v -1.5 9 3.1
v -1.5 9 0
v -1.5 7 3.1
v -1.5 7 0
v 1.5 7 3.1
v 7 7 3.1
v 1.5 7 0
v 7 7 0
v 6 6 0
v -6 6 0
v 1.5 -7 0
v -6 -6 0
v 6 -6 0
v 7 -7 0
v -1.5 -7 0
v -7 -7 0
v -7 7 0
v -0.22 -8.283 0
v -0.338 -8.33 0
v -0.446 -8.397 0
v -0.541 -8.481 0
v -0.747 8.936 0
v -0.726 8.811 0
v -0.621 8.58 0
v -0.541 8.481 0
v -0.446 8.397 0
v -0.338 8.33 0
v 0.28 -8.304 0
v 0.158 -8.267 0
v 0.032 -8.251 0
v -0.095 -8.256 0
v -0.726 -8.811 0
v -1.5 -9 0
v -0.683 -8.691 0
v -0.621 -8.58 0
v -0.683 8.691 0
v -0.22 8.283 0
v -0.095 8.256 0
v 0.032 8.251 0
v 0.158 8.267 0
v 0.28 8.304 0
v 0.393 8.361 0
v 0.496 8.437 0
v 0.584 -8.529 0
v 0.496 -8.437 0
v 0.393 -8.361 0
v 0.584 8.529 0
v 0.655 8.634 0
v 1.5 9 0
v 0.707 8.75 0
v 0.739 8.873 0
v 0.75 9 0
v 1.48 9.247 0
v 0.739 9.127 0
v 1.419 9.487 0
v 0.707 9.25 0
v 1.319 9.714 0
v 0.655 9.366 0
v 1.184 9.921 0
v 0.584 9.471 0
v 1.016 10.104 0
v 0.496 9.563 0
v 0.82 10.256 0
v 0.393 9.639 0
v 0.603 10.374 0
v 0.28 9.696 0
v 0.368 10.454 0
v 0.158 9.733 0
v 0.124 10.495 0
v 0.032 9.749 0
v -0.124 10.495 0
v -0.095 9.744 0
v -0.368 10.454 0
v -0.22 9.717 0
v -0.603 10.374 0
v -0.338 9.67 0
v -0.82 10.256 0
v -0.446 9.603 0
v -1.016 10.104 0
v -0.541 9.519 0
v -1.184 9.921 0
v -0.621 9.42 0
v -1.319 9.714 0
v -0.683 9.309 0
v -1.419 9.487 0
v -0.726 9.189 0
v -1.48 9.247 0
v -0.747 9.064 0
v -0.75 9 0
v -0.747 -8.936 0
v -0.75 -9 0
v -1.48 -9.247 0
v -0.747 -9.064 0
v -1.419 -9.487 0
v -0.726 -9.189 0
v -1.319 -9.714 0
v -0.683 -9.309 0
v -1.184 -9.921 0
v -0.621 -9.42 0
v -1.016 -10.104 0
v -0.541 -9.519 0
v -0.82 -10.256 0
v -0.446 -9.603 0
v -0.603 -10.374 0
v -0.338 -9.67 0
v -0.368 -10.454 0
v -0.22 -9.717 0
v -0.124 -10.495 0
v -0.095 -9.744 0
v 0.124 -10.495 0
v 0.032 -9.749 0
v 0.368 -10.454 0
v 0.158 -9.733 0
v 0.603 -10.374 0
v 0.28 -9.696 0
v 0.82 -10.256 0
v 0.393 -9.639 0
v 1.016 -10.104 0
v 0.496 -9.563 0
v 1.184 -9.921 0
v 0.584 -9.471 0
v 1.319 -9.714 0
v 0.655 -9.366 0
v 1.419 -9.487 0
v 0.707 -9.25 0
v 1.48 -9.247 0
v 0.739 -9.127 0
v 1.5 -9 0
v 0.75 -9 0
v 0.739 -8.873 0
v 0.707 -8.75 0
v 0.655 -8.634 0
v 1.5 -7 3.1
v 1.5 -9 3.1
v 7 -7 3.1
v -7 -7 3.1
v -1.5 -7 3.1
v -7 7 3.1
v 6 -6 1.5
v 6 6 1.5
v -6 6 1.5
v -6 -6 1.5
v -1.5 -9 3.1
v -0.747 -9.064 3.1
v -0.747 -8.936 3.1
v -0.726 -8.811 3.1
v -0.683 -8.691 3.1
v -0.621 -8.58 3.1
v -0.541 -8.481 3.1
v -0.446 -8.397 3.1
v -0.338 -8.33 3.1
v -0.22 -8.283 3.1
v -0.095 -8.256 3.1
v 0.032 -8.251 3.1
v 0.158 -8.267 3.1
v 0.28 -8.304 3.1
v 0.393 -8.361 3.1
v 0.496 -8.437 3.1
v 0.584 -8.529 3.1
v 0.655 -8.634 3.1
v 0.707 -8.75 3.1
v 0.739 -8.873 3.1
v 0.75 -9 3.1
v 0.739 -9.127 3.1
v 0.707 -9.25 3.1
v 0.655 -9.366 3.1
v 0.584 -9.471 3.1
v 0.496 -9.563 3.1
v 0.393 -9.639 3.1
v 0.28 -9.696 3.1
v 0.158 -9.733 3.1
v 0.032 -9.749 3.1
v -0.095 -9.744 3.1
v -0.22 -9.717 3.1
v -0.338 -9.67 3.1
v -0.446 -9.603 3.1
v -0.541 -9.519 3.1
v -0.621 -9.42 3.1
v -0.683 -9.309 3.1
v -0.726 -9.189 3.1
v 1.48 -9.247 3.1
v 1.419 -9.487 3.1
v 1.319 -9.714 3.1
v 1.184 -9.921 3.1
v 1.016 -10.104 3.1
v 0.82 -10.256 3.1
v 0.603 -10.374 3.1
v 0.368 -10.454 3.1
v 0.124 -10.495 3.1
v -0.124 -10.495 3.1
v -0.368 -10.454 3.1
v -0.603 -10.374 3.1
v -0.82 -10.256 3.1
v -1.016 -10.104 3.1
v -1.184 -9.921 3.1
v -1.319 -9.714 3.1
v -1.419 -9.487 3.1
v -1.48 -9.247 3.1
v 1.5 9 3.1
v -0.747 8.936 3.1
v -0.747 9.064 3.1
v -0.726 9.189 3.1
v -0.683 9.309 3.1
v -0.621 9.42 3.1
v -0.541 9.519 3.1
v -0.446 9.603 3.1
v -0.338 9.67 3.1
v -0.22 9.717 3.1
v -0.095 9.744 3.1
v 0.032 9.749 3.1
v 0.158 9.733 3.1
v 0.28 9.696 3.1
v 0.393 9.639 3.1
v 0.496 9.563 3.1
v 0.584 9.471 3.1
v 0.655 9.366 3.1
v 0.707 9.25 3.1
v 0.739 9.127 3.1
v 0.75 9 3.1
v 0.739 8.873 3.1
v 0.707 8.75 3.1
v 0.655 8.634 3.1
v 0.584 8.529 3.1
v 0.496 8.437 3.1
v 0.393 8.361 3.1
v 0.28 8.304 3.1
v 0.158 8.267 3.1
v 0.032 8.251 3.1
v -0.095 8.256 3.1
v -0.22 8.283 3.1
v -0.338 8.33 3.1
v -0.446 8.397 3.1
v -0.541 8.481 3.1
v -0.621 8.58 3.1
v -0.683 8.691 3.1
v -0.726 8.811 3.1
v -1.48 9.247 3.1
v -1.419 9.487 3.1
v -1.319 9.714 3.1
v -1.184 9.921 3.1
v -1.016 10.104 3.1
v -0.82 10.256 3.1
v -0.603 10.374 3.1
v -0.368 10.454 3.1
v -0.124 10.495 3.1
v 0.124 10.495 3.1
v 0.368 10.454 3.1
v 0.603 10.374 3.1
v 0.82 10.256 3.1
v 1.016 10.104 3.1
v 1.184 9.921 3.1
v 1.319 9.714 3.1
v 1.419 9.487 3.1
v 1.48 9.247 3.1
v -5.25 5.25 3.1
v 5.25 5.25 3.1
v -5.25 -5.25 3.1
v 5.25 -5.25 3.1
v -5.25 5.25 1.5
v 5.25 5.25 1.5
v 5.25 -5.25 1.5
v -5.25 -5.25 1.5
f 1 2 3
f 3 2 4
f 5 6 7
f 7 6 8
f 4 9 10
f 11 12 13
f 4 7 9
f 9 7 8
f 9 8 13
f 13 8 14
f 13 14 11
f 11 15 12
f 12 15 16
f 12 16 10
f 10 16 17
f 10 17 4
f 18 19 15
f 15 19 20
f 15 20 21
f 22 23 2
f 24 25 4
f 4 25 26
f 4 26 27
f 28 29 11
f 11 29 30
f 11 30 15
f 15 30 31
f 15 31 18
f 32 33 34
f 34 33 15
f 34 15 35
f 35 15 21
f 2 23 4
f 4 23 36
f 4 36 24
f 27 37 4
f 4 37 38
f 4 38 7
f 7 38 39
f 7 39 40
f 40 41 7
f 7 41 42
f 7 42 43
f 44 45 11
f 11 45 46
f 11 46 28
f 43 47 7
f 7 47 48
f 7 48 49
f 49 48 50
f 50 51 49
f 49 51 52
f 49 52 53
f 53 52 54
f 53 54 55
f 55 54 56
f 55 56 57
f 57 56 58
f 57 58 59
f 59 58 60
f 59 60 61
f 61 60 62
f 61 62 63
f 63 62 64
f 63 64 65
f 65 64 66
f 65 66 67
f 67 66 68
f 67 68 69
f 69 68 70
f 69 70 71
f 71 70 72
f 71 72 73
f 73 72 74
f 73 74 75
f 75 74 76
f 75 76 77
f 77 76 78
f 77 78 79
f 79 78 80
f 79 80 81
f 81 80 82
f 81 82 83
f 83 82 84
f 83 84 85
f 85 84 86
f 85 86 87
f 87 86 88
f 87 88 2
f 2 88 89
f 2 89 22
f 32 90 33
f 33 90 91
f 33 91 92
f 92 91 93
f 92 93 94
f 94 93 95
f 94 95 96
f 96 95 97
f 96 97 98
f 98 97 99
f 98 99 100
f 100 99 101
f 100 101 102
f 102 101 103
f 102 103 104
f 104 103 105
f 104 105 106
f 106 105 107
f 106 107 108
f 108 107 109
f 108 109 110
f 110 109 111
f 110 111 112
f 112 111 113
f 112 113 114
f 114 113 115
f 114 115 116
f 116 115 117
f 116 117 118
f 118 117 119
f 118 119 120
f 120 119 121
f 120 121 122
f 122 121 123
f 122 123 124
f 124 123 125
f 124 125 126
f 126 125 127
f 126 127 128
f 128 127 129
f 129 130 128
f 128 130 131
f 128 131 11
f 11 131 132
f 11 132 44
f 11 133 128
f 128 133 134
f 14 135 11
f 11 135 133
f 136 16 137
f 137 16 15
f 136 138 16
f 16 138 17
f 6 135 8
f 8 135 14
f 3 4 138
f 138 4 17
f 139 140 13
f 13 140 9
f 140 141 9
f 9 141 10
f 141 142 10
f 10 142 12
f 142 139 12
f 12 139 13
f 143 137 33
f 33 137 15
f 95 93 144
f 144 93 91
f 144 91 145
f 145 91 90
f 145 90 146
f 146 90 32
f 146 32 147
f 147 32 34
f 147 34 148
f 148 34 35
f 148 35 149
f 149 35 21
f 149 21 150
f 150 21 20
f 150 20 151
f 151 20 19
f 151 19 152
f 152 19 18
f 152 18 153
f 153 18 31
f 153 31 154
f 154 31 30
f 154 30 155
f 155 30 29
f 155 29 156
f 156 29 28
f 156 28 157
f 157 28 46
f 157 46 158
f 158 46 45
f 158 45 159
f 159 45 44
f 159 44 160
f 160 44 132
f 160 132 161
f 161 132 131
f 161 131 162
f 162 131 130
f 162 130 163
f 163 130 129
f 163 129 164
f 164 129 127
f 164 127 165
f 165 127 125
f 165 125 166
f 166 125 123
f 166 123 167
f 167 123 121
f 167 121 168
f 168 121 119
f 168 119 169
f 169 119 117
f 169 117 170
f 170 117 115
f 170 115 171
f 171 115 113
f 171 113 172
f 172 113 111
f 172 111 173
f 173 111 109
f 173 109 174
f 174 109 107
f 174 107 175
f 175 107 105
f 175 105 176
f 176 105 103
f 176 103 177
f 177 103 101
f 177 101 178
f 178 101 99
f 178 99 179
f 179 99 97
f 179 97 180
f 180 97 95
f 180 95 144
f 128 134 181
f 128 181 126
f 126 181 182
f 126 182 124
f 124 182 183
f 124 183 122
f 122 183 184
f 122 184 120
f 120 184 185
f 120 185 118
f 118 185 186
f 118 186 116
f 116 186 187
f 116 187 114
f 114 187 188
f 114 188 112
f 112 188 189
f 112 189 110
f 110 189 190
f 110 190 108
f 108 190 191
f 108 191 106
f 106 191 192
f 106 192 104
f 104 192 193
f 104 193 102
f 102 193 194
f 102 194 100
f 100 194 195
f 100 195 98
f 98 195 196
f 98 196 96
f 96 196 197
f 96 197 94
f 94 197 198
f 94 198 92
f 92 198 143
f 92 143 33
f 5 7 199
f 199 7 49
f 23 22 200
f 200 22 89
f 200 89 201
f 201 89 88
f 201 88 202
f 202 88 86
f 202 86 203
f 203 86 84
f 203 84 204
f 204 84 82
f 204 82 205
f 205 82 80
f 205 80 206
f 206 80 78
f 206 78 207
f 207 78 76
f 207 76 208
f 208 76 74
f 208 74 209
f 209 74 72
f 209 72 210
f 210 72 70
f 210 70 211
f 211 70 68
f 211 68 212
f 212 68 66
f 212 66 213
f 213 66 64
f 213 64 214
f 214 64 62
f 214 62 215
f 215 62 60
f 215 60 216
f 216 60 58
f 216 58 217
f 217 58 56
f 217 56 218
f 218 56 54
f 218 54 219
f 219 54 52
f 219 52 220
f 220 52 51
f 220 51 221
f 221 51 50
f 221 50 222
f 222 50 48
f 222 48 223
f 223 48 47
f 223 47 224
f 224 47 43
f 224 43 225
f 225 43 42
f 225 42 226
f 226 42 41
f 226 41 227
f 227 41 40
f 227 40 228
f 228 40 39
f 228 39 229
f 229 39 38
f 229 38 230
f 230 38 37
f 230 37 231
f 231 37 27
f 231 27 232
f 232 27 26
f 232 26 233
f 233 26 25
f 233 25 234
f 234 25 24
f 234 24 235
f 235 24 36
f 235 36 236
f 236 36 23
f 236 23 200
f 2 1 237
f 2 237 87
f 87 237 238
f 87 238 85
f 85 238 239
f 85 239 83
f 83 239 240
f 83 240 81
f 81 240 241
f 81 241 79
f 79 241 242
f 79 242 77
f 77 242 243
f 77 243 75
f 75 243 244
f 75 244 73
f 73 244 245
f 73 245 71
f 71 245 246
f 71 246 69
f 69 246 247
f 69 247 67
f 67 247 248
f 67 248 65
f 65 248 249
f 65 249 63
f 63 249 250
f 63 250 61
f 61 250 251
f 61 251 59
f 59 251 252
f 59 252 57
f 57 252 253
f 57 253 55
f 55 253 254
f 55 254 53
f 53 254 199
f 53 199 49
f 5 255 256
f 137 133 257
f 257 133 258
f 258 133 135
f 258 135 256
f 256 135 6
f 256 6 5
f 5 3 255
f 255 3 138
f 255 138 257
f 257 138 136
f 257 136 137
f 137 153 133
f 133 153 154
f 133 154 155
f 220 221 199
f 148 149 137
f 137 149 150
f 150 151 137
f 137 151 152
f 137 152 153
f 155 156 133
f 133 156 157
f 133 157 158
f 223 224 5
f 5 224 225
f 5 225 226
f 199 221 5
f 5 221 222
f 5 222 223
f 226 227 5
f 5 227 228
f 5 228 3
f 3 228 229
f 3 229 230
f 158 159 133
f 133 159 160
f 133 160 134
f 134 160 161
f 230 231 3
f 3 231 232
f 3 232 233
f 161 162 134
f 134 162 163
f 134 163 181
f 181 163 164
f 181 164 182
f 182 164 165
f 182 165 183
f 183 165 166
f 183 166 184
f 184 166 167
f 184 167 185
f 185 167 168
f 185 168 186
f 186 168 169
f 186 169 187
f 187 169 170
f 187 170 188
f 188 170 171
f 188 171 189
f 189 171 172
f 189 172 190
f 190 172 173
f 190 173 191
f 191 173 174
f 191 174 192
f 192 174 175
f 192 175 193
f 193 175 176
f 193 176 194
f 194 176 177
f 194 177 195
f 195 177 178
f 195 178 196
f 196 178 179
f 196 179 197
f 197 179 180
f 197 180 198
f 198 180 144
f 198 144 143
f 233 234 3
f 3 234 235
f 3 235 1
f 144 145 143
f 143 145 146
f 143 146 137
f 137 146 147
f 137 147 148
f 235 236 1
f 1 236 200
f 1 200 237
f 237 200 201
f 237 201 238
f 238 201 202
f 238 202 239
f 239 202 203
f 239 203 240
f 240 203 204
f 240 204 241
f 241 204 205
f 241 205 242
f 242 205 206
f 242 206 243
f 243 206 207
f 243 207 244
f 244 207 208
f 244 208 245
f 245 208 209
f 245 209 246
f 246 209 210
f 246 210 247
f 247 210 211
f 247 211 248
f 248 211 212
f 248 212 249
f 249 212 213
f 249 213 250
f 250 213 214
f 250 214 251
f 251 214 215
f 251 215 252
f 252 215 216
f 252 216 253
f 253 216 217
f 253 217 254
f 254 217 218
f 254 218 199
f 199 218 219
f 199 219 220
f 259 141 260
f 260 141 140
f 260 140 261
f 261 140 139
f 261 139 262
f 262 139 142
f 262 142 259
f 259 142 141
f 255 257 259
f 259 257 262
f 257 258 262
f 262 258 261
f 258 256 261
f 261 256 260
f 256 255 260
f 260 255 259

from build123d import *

# Parameters (mm, degrees)
SKETCH_1_W          = 14
SKETCH_1_H          = 14
SKETCH_1_W_2        = 12
SKETCH_1_H_2        = 12
EXTRUDE_1_DEPTH     = 1.5
SKETCH_2_W          = 3
SKETCH_2_H          = 1.5
EXTRUDE_2_DEPTH     = 3.5
SKETCH_3_R          = 0.75
CUT_EXTRUDE_1_DEPTH = 3.5
CUT_EXTRUDE_2_DEPTH = 3.5
EXTRUDE_START       = 1.6
SKETCH_6_R          = 0.75
SKETCH_6_W          = 10.5
SKETCH_6_H          = 10.5
EXTRUDE_3_DEPTH     = 1.6


with BuildPart() as part:
    # 草图1 → 凸台-拉伸1 (new body)
    with BuildSketch(Plane.XY):
        Rectangle(SKETCH_1_W, SKETCH_1_H)
        Rectangle(SKETCH_1_W_2, SKETCH_1_H_2, mode=Mode.SUBTRACT)
    extrude(amount=EXTRUDE_1_DEPTH)

    # 草图2 → 凸台-拉伸2 (add)
    with BuildSketch(Plane.XZ.offset(7)):
        with Locations((0, 0.75)):
            Rectangle(SKETCH_2_W, SKETCH_2_H)
    extrude_2 = extrude(amount=EXTRUDE_2_DEPTH)

    # 草图3 → 切除-拉伸1 (cut)
    with BuildSketch(Plane.XY.offset(1.5)):
        with Locations((0, -9)):
            Circle(SKETCH_3_R)
    cut_extrude_1 = extrude(amount=-CUT_EXTRUDE_1_DEPTH, mode=Mode.SUBTRACT)

    # 草图3<3> → 切除-拉伸2 (cut)
    with BuildSketch(Plane.XY.offset(1.5)):
        with BuildLine():
            ThreePointArc((0, -10.5), (-1.060660172, -10.060660172), (-1.5, -9))
            Line((-1.5, -9), (-1.5, -10.5))
            Line((-1.5, -10.5), (0, -10.5))
        make_face()
        with BuildLine():
            Line((1.5, -10.5), (1.5, -9))
            ThreePointArc((1.5, -9), (1.060660172, -10.060660172), (0, -10.5))
            Line((0, -10.5), (1.5, -10.5))
        make_face()
    cut_extrude_2 = extrude(amount=-CUT_EXTRUDE_2_DEPTH, mode=Mode.SUBTRACT)

    # 镜向1: 凸台-拉伸2, 切除-拉伸1, 切除-拉伸2 across plane
    add(extrude_2.mirror(Plane.ZX))
    add(cut_extrude_1.mirror(Plane.ZX), mode=Mode.SUBTRACT)
    add(cut_extrude_2.mirror(Plane.ZX), mode=Mode.SUBTRACT)

    # 草图6 → 凸台-拉伸3 (add)
    with BuildSketch(Plane.XY.offset(1.5).offset(EXTRUDE_START)):
        with BuildLine():
            Line((-1.5, -9), (-1.5, -7))
            Line((-1.5, -7), (-7, -7))
            Line((-7, -7), (-7, 7))
            Line((-7, 7), (-1.5, 7))
            Line((-1.5, 7), (-1.5, 9))
            ThreePointArc((-1.5, 9), (0, 10.5), (1.5, 9))
            Line((1.5, 9), (1.5, 7))
            Line((1.5, 7), (7, 7))
            Line((7, 7), (7, -7))
            Line((7, -7), (1.5, -7))
            Line((1.5, -7), (1.5, -9))
            ThreePointArc((1.5, -9), (0, -10.5), (-1.5, -9))
        make_face()
        with Locations((0, 9)):
            Circle(SKETCH_6_R, mode=Mode.SUBTRACT)
        with Locations((0, -9)):
            Circle(SKETCH_6_R, mode=Mode.SUBTRACT)
        Rectangle(SKETCH_6_W, SKETCH_6_H, mode=Mode.SUBTRACT)
    extrude(amount=-EXTRUDE_3_DEPTH)


solid = part.part
